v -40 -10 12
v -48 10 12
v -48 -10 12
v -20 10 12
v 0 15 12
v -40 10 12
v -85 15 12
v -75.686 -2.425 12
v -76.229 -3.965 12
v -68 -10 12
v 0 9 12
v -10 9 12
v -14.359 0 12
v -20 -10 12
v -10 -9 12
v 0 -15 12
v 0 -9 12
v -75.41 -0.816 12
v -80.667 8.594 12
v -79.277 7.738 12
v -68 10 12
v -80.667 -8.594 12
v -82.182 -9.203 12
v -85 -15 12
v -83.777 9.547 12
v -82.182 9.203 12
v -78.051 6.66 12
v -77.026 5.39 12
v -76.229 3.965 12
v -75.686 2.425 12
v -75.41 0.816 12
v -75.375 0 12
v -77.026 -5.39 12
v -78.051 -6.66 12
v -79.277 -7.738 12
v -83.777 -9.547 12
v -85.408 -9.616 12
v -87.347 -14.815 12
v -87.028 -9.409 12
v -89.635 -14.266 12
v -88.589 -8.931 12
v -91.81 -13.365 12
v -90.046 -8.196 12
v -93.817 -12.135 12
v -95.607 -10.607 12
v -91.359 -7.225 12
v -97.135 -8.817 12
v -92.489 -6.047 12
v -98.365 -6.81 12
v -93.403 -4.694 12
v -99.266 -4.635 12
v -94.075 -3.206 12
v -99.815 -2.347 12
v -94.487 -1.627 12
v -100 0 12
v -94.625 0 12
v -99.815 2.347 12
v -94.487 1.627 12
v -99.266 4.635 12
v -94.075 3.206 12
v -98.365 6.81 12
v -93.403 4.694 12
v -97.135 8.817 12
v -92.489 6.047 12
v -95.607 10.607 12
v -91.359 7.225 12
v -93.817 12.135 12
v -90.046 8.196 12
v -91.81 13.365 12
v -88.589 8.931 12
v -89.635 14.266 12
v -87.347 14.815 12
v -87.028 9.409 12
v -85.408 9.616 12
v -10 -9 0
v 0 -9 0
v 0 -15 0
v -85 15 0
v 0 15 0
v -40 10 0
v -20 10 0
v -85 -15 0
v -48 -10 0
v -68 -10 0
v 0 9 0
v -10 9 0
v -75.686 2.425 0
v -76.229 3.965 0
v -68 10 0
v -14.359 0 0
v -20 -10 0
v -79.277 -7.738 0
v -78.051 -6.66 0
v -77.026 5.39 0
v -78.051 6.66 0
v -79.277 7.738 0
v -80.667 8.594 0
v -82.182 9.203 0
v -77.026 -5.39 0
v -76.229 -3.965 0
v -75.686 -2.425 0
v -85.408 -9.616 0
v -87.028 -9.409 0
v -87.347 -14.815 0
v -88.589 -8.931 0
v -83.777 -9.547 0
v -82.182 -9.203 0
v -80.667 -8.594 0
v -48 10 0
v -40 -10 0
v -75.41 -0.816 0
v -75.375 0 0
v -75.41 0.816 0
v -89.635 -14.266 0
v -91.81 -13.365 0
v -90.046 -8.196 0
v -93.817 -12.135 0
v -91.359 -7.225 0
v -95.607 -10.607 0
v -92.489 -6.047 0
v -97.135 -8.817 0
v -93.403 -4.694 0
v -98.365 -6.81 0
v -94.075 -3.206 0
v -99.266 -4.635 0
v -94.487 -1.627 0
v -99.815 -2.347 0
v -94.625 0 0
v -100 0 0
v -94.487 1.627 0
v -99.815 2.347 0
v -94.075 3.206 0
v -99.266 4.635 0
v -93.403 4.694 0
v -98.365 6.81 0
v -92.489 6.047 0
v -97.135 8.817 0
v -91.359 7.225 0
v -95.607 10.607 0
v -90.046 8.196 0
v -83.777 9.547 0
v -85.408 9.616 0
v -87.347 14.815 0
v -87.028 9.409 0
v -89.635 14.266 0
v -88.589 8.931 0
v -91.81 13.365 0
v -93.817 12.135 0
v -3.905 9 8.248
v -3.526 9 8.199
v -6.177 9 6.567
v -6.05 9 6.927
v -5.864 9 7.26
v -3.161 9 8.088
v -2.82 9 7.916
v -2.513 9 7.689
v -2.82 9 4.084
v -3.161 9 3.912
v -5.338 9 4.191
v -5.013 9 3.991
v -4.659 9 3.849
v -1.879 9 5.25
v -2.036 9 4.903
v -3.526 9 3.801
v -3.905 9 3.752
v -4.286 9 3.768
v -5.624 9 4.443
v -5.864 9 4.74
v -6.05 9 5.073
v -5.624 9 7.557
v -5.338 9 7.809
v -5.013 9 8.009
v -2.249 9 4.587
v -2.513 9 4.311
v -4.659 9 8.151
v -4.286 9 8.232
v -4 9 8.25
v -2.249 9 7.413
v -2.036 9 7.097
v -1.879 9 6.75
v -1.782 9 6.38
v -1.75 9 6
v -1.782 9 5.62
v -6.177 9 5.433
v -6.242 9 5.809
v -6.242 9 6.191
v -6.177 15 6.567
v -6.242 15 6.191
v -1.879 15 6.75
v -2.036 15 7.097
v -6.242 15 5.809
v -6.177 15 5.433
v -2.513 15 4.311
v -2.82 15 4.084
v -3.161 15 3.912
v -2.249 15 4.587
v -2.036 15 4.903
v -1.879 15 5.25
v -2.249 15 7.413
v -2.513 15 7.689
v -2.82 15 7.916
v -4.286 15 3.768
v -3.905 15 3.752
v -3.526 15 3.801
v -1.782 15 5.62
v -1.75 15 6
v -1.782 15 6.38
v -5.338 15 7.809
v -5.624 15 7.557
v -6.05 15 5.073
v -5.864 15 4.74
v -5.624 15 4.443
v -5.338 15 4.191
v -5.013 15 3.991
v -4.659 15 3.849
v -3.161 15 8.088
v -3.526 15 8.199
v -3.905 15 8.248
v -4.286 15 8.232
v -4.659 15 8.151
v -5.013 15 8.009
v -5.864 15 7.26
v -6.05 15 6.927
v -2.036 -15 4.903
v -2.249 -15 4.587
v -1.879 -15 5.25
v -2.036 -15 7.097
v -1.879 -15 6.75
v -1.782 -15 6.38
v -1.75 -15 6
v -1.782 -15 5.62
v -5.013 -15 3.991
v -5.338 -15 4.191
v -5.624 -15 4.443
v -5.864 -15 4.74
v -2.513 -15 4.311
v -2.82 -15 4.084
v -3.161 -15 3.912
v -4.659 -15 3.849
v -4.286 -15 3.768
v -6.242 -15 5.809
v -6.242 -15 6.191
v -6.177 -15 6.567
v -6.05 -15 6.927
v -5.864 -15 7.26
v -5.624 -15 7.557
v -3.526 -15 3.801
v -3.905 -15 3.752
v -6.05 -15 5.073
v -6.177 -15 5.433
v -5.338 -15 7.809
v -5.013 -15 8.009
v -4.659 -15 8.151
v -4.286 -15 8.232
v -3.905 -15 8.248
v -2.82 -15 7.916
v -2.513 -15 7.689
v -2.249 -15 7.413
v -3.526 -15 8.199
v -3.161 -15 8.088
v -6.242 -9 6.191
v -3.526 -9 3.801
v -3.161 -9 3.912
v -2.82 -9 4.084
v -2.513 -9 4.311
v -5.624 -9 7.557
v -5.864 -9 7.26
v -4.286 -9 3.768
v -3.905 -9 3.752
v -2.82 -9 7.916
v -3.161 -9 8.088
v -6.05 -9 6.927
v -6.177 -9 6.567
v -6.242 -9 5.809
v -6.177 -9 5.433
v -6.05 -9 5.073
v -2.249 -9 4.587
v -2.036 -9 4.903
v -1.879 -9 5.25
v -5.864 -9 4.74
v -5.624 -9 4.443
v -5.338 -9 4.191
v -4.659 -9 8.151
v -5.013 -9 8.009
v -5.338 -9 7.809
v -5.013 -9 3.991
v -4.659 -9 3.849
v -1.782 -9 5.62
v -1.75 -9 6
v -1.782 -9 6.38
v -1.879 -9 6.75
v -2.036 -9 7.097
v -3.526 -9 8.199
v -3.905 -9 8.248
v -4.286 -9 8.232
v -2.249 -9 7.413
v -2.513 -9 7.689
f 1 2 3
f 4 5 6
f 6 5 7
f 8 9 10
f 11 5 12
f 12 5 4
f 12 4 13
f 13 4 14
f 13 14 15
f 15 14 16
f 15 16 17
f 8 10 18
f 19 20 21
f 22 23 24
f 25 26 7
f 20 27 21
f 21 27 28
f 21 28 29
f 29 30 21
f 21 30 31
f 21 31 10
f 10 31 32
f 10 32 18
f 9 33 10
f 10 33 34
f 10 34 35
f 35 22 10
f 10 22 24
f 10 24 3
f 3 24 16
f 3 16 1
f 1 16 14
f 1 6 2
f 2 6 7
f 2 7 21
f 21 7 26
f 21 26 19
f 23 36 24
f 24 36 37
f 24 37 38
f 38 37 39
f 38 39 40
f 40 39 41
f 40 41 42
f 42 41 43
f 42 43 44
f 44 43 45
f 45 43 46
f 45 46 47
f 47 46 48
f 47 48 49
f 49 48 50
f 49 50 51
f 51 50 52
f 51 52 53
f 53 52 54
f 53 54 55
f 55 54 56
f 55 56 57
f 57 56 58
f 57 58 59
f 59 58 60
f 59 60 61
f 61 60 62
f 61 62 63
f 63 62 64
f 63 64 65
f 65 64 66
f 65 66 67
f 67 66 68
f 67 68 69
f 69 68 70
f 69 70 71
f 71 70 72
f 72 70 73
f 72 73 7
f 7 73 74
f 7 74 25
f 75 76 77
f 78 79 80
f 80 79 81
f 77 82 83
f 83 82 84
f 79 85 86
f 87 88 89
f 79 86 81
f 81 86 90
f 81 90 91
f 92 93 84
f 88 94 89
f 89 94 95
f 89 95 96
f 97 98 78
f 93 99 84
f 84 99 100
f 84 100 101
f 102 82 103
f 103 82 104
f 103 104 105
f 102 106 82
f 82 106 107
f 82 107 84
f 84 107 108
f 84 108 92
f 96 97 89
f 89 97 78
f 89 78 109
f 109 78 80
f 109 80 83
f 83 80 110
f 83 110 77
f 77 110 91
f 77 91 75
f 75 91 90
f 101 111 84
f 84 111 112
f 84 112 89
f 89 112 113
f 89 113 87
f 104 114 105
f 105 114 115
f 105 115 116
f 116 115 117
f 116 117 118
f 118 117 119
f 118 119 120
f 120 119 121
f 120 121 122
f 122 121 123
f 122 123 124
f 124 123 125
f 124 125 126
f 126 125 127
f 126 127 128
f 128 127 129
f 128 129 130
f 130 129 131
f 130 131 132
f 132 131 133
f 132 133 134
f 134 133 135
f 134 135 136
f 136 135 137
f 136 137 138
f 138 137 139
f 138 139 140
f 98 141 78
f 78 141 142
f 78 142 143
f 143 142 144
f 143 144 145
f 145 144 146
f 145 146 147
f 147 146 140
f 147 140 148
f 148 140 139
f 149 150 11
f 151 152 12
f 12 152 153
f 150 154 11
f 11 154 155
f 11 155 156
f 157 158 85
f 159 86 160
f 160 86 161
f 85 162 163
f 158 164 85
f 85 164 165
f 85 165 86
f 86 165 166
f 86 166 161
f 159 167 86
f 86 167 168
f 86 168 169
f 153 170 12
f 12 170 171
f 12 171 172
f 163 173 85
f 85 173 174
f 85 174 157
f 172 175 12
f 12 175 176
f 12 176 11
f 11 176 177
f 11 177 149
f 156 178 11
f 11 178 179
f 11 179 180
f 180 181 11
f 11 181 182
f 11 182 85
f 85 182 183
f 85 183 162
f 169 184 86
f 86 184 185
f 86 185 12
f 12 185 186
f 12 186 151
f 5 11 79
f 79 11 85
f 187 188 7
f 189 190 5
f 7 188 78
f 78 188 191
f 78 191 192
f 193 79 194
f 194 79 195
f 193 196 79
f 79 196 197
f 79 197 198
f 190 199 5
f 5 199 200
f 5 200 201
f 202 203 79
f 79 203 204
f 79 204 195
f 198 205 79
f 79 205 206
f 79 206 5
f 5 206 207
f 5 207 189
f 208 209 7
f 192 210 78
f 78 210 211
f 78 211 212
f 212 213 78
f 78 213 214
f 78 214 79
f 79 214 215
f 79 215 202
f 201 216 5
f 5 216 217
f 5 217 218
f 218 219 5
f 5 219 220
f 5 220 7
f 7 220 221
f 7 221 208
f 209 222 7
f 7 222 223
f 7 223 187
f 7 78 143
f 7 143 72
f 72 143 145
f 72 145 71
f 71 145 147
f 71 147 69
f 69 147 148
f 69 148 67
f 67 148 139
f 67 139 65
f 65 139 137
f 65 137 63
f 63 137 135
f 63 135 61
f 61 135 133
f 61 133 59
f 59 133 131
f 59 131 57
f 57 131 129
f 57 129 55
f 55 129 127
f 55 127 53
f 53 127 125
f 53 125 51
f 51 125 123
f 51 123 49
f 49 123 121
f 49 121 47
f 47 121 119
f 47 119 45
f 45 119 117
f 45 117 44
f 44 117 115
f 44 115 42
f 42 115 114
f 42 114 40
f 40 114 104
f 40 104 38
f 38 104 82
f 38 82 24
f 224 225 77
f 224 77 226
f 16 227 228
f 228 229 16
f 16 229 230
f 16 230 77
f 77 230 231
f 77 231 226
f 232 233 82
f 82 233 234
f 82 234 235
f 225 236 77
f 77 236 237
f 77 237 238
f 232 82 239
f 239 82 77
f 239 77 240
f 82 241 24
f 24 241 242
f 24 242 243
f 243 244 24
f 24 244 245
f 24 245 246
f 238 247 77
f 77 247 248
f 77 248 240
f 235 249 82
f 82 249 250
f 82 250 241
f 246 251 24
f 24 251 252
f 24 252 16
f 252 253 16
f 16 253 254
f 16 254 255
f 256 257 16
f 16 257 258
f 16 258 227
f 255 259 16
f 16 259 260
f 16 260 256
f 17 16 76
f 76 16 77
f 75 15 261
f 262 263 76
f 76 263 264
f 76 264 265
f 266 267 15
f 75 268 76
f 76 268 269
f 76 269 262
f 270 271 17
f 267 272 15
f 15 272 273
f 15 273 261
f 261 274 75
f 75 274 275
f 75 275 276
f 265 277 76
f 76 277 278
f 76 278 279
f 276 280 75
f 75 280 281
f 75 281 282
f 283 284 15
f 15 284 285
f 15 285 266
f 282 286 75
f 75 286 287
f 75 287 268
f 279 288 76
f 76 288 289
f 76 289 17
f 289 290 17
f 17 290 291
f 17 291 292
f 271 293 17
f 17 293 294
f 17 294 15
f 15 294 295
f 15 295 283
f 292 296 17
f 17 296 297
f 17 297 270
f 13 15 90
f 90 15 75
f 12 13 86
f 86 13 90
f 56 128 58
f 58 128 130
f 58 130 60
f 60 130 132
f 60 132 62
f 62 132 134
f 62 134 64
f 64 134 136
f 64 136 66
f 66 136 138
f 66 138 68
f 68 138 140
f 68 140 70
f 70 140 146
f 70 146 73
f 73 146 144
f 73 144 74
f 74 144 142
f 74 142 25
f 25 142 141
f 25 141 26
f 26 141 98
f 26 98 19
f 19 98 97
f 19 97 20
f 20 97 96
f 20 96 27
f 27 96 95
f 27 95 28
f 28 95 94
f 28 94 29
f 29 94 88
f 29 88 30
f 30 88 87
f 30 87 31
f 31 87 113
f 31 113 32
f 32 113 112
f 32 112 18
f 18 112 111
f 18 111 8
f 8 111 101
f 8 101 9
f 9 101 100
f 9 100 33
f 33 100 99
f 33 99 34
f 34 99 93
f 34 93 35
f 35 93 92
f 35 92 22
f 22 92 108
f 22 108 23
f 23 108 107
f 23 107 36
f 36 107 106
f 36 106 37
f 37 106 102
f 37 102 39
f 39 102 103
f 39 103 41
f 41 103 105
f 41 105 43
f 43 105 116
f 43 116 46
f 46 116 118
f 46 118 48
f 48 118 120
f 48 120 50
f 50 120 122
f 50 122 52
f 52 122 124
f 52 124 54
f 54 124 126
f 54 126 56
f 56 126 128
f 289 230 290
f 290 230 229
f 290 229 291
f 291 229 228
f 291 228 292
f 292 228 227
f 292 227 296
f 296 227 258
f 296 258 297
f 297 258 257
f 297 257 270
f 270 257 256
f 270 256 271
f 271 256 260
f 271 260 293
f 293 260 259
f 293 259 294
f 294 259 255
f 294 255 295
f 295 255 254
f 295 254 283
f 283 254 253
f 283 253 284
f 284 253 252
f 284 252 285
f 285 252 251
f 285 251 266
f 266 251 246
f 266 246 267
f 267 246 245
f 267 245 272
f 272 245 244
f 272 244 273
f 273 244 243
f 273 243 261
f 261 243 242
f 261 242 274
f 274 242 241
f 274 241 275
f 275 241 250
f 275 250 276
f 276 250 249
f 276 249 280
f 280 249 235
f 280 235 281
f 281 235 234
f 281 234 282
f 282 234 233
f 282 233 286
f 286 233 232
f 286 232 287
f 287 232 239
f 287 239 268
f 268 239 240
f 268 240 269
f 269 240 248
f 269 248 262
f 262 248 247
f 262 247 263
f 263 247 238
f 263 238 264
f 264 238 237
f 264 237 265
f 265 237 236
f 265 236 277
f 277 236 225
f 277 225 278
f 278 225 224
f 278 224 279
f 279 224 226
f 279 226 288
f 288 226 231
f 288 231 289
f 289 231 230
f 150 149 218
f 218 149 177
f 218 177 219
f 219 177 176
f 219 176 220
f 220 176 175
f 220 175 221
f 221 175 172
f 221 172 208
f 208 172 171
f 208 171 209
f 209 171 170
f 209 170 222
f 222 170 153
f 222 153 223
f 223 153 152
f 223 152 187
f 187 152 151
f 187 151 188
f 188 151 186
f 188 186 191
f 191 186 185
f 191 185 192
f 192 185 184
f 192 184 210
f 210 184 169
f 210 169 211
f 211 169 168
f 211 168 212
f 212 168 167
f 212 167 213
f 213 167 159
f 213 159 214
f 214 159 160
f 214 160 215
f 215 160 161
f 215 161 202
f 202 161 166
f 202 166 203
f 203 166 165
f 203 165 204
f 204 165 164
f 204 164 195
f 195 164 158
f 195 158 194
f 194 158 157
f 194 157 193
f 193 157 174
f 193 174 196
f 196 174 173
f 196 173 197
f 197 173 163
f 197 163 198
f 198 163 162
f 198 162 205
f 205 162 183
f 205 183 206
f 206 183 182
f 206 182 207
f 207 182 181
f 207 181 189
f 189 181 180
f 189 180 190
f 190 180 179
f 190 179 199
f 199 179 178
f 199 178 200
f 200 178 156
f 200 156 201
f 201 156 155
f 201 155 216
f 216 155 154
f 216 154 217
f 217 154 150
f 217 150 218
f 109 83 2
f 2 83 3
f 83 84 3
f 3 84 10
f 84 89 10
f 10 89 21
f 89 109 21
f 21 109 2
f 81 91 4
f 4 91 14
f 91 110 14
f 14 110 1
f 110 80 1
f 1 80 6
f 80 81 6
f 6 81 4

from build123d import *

# Parameters (mm, degrees)
SKETCH1_R           = 9.625
BOSS_EXTRUDE1_DEPTH = 12
SKETCH2_R           = 2.25
CUT_EXTRUDE1_DEPTH  = 106.090437243
SKETCH3_W           = 20
SKETCH3_H           = 20
CUT_EXTRUDE2_DEPTH  = 102.828286836


with BuildPart() as part:
    # Sketch1 → Boss-Extrude1 (new body)
    with BuildSketch(Plane.XY):
        with BuildLine():
            Line((-85, 15), (0, 15))
            Line((0, 15), (0, 9))
            Line((0, 9), (-10, 9))
            Line((-10, 9), (-14.358898944, 0))
            Line((-14.358898944, 0), (-10, -9))
            Line((-10, -9), (0, -9))
            Line((0, -9), (0, -15))
            Line((0, -15), (-85, -15))
            ThreePointArc((-85, -15), (-100, 0), (-85, 15))
        make_face()
        with Locations((-85, 0)):
            Circle(SKETCH1_R, mode=Mode.SUBTRACT)
    extrude(amount=BOSS_EXTRUDE1_DEPTH)

    # Sketch2 → Cut-Extrude1 (cut, through all)
    with BuildSketch(Plane.XZ.offset(15)):
        with Locations((-4, 6)):
            Circle(SKETCH2_R)
    extrude(amount=-CUT_EXTRUDE1_DEPTH, mode=Mode.SUBTRACT)

    # Sketch3 → Cut-Extrude2 (cut, through all)
    with BuildSketch(Plane.XY.offset(12)):
        with Locations((-30, 0)):
            Rectangle(SKETCH3_W, SKETCH3_H)
        with Locations((-58, 0)):
            Rectangle(SKETCH3_W, SKETCH3_H)
    extrude(amount=-CUT_EXTRUDE2_DEPTH, mode=Mode.SUBTRACT)


solid = part.part
